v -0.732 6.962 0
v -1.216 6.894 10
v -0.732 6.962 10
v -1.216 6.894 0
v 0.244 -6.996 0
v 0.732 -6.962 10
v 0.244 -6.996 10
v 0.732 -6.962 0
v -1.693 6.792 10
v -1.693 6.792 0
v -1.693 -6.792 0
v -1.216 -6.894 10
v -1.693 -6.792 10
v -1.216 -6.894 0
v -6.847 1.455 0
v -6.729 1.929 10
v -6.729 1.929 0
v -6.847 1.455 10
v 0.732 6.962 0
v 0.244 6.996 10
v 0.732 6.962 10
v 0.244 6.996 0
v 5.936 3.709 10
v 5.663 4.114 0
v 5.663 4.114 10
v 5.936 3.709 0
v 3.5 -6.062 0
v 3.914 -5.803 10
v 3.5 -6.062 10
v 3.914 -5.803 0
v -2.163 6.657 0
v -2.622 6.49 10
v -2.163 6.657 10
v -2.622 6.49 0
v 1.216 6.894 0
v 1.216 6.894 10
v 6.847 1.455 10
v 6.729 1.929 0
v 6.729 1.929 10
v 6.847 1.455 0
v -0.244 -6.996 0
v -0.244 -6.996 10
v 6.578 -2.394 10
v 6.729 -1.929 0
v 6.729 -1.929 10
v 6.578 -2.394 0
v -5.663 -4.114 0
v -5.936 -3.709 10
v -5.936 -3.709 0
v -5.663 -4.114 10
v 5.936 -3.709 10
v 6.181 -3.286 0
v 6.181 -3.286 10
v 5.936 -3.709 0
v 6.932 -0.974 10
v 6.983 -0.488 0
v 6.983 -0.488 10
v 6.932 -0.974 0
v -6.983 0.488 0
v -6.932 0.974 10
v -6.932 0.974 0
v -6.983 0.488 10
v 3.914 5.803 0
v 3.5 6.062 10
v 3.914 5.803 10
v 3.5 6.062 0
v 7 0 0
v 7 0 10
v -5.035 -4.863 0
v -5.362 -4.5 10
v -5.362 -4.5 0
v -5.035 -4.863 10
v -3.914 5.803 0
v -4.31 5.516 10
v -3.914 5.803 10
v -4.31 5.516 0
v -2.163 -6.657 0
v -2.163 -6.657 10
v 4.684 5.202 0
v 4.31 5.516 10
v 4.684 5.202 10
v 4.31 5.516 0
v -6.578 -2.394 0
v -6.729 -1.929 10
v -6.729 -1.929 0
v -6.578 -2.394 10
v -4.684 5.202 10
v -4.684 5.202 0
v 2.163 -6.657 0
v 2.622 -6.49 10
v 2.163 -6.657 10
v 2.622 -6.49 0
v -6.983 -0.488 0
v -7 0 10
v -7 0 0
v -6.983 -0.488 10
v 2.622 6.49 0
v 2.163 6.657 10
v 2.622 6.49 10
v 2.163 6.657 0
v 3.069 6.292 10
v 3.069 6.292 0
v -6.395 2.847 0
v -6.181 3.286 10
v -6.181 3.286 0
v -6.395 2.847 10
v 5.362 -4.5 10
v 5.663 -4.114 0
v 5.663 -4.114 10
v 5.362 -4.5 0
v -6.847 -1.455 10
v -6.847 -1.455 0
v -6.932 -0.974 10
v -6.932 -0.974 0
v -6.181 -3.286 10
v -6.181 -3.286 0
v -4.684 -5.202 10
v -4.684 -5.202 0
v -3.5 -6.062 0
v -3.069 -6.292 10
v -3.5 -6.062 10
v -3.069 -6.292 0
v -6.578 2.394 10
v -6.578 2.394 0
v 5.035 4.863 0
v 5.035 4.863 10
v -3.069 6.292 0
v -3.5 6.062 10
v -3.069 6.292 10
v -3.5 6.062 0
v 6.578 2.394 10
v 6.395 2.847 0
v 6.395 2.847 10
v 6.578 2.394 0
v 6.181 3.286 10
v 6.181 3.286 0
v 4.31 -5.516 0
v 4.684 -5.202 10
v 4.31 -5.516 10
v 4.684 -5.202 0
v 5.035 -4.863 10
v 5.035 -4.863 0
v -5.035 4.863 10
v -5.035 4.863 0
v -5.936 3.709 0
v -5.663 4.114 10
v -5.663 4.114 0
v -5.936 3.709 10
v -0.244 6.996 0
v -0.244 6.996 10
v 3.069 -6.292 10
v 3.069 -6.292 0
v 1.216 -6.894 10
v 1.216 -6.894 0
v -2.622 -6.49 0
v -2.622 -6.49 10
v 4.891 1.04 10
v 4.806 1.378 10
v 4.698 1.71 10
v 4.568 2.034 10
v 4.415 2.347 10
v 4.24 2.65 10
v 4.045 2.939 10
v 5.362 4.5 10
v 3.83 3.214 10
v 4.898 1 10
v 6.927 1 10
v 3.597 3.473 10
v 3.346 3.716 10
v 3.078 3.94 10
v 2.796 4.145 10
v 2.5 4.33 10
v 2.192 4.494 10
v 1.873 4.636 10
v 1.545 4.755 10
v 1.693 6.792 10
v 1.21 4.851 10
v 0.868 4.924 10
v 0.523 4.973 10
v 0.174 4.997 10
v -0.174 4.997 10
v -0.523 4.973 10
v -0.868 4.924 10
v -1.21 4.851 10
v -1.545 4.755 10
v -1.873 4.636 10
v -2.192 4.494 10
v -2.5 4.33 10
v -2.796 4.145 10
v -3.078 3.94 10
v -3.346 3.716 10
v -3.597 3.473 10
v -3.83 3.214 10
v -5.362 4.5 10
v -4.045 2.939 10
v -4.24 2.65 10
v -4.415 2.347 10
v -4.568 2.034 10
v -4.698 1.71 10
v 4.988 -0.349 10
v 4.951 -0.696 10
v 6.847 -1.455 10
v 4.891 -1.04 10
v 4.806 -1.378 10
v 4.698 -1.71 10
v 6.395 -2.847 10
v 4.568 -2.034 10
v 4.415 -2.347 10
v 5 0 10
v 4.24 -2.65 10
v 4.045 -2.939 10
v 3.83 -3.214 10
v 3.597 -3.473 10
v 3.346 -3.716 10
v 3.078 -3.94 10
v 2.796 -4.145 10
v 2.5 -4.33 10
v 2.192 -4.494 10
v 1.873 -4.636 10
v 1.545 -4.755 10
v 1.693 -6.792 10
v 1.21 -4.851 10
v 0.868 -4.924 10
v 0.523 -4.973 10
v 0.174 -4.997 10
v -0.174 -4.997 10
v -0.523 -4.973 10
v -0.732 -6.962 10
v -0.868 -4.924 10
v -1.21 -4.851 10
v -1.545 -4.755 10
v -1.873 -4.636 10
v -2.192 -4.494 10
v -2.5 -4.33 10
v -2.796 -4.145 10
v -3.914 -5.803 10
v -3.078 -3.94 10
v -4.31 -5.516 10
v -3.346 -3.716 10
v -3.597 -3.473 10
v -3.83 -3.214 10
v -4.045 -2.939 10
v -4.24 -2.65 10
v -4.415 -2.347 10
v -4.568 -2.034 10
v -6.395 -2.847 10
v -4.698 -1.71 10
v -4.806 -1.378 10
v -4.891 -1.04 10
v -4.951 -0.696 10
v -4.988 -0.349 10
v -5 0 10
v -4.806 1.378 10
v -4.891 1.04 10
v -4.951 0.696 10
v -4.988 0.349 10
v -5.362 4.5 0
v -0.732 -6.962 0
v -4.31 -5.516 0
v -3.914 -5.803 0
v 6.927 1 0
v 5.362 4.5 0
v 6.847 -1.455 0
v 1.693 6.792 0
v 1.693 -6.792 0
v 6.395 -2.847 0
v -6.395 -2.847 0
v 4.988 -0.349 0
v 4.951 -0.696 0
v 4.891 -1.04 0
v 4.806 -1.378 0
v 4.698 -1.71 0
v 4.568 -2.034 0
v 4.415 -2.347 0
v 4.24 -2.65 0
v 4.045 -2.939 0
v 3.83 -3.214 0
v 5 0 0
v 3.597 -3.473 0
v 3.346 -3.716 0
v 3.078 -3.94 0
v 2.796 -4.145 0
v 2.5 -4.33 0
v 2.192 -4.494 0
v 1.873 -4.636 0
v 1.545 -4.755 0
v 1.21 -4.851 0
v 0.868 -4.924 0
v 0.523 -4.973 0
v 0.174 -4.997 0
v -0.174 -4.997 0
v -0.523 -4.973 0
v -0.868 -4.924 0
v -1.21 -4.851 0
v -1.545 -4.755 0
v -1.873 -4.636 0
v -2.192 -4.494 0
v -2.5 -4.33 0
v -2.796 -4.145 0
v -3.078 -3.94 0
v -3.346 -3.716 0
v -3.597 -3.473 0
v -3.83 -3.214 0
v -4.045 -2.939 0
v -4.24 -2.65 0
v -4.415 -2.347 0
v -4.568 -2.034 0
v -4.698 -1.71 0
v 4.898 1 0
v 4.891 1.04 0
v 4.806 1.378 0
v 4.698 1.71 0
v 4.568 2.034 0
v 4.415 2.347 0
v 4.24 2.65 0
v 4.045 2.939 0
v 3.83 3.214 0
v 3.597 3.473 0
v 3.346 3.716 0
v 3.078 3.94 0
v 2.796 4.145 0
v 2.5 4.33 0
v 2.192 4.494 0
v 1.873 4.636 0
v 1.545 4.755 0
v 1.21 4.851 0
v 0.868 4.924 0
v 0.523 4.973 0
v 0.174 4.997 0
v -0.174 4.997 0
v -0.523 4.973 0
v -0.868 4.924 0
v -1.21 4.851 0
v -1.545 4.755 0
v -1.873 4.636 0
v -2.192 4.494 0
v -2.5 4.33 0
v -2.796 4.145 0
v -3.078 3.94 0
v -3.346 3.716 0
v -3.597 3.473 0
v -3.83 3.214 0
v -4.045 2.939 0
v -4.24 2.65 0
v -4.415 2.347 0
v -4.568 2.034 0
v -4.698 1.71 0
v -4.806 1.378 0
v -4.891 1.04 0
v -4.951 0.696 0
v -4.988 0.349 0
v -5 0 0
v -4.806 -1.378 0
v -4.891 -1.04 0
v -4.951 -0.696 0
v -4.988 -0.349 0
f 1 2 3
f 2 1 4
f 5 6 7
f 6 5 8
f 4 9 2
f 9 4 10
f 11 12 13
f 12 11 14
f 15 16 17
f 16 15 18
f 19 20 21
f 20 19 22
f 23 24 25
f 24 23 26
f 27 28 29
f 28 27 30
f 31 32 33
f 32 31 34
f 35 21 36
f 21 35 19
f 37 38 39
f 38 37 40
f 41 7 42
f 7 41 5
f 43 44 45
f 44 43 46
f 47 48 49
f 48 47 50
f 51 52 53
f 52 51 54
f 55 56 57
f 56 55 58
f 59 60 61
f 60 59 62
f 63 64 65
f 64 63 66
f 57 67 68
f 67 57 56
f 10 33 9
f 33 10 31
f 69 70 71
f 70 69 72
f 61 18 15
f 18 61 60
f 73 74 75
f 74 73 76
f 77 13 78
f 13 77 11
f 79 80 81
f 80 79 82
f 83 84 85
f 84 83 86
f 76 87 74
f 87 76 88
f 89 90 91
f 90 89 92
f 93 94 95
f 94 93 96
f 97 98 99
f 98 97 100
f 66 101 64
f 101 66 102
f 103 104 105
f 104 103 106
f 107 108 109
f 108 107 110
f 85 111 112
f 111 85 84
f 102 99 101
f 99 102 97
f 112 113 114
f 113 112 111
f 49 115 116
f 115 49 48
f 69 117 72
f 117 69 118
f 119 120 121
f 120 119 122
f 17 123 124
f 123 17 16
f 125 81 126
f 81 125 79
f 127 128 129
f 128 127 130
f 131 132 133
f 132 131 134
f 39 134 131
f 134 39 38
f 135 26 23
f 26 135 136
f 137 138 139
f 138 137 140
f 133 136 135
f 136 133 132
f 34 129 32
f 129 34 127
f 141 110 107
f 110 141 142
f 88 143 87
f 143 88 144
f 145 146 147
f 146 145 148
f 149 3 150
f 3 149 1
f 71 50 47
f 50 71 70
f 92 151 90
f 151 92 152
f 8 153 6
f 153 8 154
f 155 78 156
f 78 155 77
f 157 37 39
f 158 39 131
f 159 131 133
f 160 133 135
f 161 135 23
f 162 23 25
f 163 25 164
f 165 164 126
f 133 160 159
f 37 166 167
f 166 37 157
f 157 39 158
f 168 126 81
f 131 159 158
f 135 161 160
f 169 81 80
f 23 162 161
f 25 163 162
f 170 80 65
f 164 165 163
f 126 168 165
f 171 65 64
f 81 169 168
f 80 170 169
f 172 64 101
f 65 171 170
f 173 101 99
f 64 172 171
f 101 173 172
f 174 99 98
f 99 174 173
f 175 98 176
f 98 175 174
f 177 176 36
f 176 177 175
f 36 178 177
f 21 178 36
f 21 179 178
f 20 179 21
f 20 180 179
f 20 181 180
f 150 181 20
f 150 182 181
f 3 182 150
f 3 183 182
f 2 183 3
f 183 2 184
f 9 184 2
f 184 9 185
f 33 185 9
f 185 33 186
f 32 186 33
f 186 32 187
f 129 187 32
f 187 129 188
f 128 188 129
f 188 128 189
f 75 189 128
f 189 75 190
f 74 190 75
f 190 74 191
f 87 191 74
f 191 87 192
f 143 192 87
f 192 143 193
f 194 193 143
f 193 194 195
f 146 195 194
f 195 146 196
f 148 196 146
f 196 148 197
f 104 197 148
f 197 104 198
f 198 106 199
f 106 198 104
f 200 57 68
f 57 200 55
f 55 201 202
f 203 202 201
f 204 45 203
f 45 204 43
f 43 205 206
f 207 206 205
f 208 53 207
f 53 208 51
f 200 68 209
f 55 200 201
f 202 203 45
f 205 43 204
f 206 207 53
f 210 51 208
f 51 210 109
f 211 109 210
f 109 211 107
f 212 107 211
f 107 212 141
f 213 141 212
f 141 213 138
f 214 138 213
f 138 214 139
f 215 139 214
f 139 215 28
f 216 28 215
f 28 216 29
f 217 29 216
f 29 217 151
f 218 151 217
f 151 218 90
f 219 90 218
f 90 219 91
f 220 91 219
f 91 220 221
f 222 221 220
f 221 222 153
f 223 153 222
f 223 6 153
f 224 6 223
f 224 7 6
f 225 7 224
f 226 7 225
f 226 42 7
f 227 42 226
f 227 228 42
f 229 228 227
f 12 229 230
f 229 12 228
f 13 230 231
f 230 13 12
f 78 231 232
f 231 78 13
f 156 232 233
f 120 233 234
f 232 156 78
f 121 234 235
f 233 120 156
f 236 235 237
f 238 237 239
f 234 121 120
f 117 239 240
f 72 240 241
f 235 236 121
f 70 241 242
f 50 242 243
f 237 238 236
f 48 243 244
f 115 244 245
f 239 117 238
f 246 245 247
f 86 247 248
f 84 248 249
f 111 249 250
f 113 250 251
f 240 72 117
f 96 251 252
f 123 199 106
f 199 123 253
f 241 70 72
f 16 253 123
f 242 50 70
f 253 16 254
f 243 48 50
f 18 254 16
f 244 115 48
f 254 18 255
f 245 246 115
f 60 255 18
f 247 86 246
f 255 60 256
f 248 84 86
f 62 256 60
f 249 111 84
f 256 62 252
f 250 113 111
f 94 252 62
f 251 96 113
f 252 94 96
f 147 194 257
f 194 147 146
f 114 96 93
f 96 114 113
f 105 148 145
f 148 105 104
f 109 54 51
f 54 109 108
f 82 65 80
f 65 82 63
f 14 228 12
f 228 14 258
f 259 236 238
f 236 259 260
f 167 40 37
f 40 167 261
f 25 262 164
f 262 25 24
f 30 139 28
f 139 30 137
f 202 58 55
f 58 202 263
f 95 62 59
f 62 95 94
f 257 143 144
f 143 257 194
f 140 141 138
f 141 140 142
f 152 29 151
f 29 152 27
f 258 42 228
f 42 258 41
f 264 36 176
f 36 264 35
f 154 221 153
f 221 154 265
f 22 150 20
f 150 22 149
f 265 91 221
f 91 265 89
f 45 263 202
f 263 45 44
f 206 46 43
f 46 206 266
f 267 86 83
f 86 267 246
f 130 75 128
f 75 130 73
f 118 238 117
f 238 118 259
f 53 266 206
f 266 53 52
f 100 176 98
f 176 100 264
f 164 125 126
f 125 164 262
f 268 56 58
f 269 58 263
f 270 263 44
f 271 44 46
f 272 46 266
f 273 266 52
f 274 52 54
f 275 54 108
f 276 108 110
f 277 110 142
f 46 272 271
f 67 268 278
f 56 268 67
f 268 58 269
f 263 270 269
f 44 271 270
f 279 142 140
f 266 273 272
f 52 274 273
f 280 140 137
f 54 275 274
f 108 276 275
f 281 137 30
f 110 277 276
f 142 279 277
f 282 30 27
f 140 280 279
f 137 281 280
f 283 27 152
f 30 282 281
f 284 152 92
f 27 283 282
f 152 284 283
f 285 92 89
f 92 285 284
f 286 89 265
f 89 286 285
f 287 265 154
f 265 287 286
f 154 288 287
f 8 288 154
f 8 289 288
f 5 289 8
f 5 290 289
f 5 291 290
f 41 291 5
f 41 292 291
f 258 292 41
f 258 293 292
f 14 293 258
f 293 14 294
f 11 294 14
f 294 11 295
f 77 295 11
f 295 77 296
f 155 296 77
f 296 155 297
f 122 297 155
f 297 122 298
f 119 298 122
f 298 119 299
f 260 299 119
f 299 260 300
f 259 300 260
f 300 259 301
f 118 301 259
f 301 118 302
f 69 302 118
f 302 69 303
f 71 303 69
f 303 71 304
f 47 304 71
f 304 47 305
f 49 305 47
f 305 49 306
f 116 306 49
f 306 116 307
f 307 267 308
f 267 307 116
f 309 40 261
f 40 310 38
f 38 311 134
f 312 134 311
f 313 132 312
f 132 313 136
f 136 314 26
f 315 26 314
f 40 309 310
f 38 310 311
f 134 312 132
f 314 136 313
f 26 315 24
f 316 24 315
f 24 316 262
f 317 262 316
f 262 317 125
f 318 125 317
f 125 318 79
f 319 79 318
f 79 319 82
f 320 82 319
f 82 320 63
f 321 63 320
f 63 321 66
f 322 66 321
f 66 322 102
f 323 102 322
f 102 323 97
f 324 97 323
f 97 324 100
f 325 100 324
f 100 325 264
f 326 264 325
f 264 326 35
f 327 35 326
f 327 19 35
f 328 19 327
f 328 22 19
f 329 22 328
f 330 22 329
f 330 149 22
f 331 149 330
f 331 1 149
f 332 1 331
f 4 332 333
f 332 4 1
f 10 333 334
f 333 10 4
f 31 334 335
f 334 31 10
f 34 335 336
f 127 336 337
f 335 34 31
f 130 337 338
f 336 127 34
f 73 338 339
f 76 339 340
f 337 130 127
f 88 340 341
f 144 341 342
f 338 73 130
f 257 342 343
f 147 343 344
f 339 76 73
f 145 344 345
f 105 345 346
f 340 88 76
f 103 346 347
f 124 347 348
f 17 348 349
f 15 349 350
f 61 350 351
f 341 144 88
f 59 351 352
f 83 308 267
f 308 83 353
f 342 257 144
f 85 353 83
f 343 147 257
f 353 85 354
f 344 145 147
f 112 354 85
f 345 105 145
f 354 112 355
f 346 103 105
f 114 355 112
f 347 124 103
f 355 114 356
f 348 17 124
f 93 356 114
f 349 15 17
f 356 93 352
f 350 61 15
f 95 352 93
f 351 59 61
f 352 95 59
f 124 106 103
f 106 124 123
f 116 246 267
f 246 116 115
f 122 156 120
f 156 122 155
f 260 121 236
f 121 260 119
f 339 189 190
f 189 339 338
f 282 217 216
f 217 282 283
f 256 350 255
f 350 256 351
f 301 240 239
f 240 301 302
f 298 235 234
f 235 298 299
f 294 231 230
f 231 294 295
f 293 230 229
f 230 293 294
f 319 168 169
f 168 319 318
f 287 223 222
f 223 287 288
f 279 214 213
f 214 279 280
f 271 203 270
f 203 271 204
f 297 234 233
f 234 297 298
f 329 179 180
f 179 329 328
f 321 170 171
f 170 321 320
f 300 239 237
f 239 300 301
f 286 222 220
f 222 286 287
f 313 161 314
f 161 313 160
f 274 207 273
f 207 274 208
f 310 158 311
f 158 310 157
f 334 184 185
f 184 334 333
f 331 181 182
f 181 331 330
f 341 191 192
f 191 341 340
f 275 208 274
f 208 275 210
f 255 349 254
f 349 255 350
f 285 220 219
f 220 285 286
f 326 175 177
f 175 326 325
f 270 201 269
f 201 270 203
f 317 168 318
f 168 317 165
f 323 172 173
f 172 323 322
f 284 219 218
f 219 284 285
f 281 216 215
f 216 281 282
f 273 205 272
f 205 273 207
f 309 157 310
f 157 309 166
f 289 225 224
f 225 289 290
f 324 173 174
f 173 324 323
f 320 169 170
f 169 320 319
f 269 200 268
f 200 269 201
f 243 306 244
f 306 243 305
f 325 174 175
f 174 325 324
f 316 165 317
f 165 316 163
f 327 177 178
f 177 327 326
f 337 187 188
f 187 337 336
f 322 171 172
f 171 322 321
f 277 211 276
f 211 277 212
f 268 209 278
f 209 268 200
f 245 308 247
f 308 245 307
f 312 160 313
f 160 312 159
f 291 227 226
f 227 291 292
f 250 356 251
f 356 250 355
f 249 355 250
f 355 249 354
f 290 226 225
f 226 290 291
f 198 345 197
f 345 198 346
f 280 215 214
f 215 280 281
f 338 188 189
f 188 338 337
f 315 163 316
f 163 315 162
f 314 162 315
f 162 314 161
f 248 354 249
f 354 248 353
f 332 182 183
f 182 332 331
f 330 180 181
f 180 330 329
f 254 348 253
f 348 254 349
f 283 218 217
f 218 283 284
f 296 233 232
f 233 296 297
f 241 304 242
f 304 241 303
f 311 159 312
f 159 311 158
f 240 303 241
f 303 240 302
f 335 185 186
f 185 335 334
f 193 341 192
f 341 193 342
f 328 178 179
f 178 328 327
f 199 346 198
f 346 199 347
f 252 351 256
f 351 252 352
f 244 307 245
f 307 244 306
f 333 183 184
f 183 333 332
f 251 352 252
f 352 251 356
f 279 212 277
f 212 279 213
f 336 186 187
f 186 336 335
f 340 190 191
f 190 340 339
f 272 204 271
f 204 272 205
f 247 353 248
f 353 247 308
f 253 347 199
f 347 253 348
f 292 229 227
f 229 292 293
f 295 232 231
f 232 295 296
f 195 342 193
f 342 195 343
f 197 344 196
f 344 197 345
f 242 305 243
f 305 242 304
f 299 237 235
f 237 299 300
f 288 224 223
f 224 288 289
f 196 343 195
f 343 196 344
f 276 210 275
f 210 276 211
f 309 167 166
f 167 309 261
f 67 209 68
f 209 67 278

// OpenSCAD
$fn = 90;

height = 10;
outterDiameter = 14;
difference(){
	cylinder(d=outterDiameter, h=height);
	#cylinder(d=10, h=height);
	#cube([outterDiameter, 1, height]);
}
